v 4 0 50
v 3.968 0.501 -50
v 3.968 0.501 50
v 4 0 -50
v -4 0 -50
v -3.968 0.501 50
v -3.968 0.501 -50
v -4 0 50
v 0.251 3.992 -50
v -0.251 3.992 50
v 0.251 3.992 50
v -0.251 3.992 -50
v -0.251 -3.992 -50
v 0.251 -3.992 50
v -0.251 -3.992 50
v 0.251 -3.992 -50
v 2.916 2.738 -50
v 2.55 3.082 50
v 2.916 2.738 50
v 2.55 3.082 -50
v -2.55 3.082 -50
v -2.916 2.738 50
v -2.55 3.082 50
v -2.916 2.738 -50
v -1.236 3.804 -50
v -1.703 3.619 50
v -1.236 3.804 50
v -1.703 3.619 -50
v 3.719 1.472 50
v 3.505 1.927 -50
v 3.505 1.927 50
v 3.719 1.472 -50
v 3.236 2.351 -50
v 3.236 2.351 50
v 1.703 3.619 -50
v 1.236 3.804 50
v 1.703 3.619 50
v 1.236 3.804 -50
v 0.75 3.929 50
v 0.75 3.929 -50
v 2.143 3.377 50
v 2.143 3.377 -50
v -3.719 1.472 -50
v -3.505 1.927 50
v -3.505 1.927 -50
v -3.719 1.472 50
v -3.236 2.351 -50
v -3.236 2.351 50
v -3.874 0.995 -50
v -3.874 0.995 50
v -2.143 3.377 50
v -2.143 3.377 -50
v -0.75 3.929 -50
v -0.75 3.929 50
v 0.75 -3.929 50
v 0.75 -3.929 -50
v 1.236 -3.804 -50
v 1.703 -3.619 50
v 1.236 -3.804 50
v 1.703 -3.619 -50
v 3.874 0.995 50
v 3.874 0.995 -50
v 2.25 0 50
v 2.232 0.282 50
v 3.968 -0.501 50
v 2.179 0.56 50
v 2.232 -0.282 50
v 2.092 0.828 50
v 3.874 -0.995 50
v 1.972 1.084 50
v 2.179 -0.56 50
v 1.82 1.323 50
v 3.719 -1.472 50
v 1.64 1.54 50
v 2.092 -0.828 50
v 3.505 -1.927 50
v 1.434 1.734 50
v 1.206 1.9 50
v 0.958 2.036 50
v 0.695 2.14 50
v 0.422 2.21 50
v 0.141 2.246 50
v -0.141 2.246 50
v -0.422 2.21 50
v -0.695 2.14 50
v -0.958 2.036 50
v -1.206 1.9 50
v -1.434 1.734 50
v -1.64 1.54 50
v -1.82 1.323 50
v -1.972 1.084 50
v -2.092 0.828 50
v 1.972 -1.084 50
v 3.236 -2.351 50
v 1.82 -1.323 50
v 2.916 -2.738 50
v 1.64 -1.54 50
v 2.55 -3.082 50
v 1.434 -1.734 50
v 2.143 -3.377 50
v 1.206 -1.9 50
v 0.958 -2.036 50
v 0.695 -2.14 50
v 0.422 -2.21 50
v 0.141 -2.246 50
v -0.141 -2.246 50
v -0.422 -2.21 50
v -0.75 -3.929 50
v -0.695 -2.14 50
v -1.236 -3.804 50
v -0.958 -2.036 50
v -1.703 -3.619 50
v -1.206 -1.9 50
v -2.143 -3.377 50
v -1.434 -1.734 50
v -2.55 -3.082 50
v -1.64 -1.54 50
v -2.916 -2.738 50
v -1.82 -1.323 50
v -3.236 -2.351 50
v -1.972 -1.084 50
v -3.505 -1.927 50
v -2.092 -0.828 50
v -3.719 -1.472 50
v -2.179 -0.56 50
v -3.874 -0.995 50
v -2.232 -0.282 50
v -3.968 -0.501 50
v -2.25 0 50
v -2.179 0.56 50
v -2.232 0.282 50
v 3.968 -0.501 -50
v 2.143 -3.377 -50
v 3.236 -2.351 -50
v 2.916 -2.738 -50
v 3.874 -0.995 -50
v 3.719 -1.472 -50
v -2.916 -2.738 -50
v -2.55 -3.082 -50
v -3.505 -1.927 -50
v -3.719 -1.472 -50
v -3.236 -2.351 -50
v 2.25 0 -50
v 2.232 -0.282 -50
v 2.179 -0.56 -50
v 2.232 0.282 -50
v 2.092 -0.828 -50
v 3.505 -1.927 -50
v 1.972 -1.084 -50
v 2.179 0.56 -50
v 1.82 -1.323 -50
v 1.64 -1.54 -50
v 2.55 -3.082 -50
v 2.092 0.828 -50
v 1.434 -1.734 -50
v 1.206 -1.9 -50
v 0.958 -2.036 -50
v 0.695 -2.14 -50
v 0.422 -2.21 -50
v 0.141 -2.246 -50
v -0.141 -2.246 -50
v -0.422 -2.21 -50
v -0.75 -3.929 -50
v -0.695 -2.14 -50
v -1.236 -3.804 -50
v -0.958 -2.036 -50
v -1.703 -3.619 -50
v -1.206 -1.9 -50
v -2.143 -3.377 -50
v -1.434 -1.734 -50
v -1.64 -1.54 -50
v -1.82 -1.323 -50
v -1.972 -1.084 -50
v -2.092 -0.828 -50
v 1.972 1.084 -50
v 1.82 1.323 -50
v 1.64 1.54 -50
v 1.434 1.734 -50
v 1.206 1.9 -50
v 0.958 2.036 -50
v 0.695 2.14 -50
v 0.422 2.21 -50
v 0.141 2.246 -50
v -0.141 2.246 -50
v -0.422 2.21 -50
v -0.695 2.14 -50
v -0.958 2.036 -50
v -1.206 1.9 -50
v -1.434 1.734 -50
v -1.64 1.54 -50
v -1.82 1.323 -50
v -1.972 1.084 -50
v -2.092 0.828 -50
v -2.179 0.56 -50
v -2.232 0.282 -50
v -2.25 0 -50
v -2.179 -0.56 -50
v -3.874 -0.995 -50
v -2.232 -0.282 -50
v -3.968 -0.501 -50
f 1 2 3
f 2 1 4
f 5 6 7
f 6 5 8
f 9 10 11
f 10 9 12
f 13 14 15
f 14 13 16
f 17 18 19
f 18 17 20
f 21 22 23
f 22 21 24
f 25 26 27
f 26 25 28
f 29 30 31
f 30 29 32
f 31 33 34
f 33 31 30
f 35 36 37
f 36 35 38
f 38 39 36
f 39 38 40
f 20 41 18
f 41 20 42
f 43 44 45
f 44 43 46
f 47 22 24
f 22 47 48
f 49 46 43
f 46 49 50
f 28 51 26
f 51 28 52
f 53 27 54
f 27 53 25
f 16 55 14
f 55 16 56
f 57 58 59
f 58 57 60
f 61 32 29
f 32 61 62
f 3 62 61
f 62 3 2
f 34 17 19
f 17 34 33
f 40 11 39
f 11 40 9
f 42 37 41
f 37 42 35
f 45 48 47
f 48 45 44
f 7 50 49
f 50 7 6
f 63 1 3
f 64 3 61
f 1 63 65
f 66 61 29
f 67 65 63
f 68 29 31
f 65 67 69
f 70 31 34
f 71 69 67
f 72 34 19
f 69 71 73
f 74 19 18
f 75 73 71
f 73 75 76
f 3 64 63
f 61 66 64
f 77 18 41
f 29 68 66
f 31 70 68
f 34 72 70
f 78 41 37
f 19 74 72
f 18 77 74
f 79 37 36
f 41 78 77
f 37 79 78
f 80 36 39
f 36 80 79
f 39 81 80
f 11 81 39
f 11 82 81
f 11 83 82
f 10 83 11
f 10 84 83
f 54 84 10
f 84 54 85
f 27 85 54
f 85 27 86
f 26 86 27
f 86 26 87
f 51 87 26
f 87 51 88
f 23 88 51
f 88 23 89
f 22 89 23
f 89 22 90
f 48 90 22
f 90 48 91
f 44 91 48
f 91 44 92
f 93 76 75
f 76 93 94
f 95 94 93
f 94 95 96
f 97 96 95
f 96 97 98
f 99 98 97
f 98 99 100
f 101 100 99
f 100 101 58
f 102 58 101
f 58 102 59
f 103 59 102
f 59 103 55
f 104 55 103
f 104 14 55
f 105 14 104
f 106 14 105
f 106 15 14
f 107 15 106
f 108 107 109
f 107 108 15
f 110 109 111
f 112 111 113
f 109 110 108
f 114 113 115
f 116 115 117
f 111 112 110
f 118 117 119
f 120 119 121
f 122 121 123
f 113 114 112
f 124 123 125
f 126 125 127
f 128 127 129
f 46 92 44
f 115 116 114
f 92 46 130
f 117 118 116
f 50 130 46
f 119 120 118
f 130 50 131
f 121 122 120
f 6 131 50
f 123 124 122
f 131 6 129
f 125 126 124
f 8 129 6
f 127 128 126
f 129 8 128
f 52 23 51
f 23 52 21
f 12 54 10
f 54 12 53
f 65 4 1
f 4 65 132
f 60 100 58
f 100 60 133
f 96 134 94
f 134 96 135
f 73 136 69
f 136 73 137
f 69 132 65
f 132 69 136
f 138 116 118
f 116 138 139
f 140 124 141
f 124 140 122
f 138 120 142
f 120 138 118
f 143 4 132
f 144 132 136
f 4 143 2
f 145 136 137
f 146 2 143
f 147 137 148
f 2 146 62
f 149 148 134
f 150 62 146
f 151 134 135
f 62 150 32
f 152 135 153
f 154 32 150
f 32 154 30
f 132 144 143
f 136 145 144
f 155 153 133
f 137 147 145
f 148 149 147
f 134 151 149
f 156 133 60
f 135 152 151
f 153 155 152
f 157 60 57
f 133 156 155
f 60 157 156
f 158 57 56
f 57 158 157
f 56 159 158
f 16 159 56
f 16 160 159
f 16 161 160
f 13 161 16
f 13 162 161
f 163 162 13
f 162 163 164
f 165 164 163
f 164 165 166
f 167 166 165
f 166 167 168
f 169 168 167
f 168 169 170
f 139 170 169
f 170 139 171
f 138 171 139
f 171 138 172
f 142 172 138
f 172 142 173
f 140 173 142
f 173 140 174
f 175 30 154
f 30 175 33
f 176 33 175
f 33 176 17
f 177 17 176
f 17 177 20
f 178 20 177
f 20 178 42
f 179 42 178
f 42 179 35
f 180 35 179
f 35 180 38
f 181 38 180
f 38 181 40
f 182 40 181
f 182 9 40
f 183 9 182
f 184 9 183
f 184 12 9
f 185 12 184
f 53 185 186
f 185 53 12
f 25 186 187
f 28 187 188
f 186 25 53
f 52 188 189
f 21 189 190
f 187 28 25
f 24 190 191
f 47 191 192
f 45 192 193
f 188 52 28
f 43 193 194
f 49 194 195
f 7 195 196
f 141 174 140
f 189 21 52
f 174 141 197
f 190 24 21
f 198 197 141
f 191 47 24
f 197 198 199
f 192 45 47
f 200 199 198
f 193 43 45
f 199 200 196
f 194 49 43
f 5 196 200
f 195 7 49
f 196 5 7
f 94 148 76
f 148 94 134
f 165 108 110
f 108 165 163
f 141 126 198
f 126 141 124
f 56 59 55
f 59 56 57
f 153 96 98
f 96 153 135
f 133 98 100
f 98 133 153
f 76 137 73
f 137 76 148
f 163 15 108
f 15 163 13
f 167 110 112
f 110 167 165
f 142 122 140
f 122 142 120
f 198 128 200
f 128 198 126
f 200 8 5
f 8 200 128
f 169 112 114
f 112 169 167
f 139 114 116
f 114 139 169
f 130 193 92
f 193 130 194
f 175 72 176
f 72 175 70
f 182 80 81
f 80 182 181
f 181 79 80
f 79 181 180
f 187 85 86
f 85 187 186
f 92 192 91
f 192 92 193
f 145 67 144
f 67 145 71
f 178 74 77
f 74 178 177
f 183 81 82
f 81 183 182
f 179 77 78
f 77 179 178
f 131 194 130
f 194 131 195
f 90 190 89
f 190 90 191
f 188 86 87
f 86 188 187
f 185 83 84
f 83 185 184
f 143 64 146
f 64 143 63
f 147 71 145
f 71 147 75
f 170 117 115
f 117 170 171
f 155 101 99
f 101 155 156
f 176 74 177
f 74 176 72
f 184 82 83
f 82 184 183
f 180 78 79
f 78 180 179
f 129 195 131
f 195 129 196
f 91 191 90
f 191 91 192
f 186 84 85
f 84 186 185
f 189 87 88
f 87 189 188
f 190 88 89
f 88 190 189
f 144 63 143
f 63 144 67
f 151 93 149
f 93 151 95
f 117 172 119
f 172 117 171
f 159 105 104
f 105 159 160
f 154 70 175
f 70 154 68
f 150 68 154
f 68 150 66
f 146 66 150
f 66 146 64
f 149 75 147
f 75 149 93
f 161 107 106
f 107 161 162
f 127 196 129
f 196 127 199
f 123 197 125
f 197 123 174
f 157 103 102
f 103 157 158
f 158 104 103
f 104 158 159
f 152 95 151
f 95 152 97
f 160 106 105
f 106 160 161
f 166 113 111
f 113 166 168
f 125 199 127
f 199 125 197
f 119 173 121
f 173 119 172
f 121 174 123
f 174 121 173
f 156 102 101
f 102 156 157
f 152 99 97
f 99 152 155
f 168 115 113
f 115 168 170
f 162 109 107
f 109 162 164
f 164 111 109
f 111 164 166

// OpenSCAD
$fn = 50;


difference() {
	union() {
		translate(v = [0, 0, -50.0000000000]) {
			cylinder(h = 100, r = 4.0000000000);
		}
	}
	union() {
		translate(v = [0, 0, -100.0000000000]) {
			cylinder(h = 200, r = 2.2500000000);
		}
	}
}
